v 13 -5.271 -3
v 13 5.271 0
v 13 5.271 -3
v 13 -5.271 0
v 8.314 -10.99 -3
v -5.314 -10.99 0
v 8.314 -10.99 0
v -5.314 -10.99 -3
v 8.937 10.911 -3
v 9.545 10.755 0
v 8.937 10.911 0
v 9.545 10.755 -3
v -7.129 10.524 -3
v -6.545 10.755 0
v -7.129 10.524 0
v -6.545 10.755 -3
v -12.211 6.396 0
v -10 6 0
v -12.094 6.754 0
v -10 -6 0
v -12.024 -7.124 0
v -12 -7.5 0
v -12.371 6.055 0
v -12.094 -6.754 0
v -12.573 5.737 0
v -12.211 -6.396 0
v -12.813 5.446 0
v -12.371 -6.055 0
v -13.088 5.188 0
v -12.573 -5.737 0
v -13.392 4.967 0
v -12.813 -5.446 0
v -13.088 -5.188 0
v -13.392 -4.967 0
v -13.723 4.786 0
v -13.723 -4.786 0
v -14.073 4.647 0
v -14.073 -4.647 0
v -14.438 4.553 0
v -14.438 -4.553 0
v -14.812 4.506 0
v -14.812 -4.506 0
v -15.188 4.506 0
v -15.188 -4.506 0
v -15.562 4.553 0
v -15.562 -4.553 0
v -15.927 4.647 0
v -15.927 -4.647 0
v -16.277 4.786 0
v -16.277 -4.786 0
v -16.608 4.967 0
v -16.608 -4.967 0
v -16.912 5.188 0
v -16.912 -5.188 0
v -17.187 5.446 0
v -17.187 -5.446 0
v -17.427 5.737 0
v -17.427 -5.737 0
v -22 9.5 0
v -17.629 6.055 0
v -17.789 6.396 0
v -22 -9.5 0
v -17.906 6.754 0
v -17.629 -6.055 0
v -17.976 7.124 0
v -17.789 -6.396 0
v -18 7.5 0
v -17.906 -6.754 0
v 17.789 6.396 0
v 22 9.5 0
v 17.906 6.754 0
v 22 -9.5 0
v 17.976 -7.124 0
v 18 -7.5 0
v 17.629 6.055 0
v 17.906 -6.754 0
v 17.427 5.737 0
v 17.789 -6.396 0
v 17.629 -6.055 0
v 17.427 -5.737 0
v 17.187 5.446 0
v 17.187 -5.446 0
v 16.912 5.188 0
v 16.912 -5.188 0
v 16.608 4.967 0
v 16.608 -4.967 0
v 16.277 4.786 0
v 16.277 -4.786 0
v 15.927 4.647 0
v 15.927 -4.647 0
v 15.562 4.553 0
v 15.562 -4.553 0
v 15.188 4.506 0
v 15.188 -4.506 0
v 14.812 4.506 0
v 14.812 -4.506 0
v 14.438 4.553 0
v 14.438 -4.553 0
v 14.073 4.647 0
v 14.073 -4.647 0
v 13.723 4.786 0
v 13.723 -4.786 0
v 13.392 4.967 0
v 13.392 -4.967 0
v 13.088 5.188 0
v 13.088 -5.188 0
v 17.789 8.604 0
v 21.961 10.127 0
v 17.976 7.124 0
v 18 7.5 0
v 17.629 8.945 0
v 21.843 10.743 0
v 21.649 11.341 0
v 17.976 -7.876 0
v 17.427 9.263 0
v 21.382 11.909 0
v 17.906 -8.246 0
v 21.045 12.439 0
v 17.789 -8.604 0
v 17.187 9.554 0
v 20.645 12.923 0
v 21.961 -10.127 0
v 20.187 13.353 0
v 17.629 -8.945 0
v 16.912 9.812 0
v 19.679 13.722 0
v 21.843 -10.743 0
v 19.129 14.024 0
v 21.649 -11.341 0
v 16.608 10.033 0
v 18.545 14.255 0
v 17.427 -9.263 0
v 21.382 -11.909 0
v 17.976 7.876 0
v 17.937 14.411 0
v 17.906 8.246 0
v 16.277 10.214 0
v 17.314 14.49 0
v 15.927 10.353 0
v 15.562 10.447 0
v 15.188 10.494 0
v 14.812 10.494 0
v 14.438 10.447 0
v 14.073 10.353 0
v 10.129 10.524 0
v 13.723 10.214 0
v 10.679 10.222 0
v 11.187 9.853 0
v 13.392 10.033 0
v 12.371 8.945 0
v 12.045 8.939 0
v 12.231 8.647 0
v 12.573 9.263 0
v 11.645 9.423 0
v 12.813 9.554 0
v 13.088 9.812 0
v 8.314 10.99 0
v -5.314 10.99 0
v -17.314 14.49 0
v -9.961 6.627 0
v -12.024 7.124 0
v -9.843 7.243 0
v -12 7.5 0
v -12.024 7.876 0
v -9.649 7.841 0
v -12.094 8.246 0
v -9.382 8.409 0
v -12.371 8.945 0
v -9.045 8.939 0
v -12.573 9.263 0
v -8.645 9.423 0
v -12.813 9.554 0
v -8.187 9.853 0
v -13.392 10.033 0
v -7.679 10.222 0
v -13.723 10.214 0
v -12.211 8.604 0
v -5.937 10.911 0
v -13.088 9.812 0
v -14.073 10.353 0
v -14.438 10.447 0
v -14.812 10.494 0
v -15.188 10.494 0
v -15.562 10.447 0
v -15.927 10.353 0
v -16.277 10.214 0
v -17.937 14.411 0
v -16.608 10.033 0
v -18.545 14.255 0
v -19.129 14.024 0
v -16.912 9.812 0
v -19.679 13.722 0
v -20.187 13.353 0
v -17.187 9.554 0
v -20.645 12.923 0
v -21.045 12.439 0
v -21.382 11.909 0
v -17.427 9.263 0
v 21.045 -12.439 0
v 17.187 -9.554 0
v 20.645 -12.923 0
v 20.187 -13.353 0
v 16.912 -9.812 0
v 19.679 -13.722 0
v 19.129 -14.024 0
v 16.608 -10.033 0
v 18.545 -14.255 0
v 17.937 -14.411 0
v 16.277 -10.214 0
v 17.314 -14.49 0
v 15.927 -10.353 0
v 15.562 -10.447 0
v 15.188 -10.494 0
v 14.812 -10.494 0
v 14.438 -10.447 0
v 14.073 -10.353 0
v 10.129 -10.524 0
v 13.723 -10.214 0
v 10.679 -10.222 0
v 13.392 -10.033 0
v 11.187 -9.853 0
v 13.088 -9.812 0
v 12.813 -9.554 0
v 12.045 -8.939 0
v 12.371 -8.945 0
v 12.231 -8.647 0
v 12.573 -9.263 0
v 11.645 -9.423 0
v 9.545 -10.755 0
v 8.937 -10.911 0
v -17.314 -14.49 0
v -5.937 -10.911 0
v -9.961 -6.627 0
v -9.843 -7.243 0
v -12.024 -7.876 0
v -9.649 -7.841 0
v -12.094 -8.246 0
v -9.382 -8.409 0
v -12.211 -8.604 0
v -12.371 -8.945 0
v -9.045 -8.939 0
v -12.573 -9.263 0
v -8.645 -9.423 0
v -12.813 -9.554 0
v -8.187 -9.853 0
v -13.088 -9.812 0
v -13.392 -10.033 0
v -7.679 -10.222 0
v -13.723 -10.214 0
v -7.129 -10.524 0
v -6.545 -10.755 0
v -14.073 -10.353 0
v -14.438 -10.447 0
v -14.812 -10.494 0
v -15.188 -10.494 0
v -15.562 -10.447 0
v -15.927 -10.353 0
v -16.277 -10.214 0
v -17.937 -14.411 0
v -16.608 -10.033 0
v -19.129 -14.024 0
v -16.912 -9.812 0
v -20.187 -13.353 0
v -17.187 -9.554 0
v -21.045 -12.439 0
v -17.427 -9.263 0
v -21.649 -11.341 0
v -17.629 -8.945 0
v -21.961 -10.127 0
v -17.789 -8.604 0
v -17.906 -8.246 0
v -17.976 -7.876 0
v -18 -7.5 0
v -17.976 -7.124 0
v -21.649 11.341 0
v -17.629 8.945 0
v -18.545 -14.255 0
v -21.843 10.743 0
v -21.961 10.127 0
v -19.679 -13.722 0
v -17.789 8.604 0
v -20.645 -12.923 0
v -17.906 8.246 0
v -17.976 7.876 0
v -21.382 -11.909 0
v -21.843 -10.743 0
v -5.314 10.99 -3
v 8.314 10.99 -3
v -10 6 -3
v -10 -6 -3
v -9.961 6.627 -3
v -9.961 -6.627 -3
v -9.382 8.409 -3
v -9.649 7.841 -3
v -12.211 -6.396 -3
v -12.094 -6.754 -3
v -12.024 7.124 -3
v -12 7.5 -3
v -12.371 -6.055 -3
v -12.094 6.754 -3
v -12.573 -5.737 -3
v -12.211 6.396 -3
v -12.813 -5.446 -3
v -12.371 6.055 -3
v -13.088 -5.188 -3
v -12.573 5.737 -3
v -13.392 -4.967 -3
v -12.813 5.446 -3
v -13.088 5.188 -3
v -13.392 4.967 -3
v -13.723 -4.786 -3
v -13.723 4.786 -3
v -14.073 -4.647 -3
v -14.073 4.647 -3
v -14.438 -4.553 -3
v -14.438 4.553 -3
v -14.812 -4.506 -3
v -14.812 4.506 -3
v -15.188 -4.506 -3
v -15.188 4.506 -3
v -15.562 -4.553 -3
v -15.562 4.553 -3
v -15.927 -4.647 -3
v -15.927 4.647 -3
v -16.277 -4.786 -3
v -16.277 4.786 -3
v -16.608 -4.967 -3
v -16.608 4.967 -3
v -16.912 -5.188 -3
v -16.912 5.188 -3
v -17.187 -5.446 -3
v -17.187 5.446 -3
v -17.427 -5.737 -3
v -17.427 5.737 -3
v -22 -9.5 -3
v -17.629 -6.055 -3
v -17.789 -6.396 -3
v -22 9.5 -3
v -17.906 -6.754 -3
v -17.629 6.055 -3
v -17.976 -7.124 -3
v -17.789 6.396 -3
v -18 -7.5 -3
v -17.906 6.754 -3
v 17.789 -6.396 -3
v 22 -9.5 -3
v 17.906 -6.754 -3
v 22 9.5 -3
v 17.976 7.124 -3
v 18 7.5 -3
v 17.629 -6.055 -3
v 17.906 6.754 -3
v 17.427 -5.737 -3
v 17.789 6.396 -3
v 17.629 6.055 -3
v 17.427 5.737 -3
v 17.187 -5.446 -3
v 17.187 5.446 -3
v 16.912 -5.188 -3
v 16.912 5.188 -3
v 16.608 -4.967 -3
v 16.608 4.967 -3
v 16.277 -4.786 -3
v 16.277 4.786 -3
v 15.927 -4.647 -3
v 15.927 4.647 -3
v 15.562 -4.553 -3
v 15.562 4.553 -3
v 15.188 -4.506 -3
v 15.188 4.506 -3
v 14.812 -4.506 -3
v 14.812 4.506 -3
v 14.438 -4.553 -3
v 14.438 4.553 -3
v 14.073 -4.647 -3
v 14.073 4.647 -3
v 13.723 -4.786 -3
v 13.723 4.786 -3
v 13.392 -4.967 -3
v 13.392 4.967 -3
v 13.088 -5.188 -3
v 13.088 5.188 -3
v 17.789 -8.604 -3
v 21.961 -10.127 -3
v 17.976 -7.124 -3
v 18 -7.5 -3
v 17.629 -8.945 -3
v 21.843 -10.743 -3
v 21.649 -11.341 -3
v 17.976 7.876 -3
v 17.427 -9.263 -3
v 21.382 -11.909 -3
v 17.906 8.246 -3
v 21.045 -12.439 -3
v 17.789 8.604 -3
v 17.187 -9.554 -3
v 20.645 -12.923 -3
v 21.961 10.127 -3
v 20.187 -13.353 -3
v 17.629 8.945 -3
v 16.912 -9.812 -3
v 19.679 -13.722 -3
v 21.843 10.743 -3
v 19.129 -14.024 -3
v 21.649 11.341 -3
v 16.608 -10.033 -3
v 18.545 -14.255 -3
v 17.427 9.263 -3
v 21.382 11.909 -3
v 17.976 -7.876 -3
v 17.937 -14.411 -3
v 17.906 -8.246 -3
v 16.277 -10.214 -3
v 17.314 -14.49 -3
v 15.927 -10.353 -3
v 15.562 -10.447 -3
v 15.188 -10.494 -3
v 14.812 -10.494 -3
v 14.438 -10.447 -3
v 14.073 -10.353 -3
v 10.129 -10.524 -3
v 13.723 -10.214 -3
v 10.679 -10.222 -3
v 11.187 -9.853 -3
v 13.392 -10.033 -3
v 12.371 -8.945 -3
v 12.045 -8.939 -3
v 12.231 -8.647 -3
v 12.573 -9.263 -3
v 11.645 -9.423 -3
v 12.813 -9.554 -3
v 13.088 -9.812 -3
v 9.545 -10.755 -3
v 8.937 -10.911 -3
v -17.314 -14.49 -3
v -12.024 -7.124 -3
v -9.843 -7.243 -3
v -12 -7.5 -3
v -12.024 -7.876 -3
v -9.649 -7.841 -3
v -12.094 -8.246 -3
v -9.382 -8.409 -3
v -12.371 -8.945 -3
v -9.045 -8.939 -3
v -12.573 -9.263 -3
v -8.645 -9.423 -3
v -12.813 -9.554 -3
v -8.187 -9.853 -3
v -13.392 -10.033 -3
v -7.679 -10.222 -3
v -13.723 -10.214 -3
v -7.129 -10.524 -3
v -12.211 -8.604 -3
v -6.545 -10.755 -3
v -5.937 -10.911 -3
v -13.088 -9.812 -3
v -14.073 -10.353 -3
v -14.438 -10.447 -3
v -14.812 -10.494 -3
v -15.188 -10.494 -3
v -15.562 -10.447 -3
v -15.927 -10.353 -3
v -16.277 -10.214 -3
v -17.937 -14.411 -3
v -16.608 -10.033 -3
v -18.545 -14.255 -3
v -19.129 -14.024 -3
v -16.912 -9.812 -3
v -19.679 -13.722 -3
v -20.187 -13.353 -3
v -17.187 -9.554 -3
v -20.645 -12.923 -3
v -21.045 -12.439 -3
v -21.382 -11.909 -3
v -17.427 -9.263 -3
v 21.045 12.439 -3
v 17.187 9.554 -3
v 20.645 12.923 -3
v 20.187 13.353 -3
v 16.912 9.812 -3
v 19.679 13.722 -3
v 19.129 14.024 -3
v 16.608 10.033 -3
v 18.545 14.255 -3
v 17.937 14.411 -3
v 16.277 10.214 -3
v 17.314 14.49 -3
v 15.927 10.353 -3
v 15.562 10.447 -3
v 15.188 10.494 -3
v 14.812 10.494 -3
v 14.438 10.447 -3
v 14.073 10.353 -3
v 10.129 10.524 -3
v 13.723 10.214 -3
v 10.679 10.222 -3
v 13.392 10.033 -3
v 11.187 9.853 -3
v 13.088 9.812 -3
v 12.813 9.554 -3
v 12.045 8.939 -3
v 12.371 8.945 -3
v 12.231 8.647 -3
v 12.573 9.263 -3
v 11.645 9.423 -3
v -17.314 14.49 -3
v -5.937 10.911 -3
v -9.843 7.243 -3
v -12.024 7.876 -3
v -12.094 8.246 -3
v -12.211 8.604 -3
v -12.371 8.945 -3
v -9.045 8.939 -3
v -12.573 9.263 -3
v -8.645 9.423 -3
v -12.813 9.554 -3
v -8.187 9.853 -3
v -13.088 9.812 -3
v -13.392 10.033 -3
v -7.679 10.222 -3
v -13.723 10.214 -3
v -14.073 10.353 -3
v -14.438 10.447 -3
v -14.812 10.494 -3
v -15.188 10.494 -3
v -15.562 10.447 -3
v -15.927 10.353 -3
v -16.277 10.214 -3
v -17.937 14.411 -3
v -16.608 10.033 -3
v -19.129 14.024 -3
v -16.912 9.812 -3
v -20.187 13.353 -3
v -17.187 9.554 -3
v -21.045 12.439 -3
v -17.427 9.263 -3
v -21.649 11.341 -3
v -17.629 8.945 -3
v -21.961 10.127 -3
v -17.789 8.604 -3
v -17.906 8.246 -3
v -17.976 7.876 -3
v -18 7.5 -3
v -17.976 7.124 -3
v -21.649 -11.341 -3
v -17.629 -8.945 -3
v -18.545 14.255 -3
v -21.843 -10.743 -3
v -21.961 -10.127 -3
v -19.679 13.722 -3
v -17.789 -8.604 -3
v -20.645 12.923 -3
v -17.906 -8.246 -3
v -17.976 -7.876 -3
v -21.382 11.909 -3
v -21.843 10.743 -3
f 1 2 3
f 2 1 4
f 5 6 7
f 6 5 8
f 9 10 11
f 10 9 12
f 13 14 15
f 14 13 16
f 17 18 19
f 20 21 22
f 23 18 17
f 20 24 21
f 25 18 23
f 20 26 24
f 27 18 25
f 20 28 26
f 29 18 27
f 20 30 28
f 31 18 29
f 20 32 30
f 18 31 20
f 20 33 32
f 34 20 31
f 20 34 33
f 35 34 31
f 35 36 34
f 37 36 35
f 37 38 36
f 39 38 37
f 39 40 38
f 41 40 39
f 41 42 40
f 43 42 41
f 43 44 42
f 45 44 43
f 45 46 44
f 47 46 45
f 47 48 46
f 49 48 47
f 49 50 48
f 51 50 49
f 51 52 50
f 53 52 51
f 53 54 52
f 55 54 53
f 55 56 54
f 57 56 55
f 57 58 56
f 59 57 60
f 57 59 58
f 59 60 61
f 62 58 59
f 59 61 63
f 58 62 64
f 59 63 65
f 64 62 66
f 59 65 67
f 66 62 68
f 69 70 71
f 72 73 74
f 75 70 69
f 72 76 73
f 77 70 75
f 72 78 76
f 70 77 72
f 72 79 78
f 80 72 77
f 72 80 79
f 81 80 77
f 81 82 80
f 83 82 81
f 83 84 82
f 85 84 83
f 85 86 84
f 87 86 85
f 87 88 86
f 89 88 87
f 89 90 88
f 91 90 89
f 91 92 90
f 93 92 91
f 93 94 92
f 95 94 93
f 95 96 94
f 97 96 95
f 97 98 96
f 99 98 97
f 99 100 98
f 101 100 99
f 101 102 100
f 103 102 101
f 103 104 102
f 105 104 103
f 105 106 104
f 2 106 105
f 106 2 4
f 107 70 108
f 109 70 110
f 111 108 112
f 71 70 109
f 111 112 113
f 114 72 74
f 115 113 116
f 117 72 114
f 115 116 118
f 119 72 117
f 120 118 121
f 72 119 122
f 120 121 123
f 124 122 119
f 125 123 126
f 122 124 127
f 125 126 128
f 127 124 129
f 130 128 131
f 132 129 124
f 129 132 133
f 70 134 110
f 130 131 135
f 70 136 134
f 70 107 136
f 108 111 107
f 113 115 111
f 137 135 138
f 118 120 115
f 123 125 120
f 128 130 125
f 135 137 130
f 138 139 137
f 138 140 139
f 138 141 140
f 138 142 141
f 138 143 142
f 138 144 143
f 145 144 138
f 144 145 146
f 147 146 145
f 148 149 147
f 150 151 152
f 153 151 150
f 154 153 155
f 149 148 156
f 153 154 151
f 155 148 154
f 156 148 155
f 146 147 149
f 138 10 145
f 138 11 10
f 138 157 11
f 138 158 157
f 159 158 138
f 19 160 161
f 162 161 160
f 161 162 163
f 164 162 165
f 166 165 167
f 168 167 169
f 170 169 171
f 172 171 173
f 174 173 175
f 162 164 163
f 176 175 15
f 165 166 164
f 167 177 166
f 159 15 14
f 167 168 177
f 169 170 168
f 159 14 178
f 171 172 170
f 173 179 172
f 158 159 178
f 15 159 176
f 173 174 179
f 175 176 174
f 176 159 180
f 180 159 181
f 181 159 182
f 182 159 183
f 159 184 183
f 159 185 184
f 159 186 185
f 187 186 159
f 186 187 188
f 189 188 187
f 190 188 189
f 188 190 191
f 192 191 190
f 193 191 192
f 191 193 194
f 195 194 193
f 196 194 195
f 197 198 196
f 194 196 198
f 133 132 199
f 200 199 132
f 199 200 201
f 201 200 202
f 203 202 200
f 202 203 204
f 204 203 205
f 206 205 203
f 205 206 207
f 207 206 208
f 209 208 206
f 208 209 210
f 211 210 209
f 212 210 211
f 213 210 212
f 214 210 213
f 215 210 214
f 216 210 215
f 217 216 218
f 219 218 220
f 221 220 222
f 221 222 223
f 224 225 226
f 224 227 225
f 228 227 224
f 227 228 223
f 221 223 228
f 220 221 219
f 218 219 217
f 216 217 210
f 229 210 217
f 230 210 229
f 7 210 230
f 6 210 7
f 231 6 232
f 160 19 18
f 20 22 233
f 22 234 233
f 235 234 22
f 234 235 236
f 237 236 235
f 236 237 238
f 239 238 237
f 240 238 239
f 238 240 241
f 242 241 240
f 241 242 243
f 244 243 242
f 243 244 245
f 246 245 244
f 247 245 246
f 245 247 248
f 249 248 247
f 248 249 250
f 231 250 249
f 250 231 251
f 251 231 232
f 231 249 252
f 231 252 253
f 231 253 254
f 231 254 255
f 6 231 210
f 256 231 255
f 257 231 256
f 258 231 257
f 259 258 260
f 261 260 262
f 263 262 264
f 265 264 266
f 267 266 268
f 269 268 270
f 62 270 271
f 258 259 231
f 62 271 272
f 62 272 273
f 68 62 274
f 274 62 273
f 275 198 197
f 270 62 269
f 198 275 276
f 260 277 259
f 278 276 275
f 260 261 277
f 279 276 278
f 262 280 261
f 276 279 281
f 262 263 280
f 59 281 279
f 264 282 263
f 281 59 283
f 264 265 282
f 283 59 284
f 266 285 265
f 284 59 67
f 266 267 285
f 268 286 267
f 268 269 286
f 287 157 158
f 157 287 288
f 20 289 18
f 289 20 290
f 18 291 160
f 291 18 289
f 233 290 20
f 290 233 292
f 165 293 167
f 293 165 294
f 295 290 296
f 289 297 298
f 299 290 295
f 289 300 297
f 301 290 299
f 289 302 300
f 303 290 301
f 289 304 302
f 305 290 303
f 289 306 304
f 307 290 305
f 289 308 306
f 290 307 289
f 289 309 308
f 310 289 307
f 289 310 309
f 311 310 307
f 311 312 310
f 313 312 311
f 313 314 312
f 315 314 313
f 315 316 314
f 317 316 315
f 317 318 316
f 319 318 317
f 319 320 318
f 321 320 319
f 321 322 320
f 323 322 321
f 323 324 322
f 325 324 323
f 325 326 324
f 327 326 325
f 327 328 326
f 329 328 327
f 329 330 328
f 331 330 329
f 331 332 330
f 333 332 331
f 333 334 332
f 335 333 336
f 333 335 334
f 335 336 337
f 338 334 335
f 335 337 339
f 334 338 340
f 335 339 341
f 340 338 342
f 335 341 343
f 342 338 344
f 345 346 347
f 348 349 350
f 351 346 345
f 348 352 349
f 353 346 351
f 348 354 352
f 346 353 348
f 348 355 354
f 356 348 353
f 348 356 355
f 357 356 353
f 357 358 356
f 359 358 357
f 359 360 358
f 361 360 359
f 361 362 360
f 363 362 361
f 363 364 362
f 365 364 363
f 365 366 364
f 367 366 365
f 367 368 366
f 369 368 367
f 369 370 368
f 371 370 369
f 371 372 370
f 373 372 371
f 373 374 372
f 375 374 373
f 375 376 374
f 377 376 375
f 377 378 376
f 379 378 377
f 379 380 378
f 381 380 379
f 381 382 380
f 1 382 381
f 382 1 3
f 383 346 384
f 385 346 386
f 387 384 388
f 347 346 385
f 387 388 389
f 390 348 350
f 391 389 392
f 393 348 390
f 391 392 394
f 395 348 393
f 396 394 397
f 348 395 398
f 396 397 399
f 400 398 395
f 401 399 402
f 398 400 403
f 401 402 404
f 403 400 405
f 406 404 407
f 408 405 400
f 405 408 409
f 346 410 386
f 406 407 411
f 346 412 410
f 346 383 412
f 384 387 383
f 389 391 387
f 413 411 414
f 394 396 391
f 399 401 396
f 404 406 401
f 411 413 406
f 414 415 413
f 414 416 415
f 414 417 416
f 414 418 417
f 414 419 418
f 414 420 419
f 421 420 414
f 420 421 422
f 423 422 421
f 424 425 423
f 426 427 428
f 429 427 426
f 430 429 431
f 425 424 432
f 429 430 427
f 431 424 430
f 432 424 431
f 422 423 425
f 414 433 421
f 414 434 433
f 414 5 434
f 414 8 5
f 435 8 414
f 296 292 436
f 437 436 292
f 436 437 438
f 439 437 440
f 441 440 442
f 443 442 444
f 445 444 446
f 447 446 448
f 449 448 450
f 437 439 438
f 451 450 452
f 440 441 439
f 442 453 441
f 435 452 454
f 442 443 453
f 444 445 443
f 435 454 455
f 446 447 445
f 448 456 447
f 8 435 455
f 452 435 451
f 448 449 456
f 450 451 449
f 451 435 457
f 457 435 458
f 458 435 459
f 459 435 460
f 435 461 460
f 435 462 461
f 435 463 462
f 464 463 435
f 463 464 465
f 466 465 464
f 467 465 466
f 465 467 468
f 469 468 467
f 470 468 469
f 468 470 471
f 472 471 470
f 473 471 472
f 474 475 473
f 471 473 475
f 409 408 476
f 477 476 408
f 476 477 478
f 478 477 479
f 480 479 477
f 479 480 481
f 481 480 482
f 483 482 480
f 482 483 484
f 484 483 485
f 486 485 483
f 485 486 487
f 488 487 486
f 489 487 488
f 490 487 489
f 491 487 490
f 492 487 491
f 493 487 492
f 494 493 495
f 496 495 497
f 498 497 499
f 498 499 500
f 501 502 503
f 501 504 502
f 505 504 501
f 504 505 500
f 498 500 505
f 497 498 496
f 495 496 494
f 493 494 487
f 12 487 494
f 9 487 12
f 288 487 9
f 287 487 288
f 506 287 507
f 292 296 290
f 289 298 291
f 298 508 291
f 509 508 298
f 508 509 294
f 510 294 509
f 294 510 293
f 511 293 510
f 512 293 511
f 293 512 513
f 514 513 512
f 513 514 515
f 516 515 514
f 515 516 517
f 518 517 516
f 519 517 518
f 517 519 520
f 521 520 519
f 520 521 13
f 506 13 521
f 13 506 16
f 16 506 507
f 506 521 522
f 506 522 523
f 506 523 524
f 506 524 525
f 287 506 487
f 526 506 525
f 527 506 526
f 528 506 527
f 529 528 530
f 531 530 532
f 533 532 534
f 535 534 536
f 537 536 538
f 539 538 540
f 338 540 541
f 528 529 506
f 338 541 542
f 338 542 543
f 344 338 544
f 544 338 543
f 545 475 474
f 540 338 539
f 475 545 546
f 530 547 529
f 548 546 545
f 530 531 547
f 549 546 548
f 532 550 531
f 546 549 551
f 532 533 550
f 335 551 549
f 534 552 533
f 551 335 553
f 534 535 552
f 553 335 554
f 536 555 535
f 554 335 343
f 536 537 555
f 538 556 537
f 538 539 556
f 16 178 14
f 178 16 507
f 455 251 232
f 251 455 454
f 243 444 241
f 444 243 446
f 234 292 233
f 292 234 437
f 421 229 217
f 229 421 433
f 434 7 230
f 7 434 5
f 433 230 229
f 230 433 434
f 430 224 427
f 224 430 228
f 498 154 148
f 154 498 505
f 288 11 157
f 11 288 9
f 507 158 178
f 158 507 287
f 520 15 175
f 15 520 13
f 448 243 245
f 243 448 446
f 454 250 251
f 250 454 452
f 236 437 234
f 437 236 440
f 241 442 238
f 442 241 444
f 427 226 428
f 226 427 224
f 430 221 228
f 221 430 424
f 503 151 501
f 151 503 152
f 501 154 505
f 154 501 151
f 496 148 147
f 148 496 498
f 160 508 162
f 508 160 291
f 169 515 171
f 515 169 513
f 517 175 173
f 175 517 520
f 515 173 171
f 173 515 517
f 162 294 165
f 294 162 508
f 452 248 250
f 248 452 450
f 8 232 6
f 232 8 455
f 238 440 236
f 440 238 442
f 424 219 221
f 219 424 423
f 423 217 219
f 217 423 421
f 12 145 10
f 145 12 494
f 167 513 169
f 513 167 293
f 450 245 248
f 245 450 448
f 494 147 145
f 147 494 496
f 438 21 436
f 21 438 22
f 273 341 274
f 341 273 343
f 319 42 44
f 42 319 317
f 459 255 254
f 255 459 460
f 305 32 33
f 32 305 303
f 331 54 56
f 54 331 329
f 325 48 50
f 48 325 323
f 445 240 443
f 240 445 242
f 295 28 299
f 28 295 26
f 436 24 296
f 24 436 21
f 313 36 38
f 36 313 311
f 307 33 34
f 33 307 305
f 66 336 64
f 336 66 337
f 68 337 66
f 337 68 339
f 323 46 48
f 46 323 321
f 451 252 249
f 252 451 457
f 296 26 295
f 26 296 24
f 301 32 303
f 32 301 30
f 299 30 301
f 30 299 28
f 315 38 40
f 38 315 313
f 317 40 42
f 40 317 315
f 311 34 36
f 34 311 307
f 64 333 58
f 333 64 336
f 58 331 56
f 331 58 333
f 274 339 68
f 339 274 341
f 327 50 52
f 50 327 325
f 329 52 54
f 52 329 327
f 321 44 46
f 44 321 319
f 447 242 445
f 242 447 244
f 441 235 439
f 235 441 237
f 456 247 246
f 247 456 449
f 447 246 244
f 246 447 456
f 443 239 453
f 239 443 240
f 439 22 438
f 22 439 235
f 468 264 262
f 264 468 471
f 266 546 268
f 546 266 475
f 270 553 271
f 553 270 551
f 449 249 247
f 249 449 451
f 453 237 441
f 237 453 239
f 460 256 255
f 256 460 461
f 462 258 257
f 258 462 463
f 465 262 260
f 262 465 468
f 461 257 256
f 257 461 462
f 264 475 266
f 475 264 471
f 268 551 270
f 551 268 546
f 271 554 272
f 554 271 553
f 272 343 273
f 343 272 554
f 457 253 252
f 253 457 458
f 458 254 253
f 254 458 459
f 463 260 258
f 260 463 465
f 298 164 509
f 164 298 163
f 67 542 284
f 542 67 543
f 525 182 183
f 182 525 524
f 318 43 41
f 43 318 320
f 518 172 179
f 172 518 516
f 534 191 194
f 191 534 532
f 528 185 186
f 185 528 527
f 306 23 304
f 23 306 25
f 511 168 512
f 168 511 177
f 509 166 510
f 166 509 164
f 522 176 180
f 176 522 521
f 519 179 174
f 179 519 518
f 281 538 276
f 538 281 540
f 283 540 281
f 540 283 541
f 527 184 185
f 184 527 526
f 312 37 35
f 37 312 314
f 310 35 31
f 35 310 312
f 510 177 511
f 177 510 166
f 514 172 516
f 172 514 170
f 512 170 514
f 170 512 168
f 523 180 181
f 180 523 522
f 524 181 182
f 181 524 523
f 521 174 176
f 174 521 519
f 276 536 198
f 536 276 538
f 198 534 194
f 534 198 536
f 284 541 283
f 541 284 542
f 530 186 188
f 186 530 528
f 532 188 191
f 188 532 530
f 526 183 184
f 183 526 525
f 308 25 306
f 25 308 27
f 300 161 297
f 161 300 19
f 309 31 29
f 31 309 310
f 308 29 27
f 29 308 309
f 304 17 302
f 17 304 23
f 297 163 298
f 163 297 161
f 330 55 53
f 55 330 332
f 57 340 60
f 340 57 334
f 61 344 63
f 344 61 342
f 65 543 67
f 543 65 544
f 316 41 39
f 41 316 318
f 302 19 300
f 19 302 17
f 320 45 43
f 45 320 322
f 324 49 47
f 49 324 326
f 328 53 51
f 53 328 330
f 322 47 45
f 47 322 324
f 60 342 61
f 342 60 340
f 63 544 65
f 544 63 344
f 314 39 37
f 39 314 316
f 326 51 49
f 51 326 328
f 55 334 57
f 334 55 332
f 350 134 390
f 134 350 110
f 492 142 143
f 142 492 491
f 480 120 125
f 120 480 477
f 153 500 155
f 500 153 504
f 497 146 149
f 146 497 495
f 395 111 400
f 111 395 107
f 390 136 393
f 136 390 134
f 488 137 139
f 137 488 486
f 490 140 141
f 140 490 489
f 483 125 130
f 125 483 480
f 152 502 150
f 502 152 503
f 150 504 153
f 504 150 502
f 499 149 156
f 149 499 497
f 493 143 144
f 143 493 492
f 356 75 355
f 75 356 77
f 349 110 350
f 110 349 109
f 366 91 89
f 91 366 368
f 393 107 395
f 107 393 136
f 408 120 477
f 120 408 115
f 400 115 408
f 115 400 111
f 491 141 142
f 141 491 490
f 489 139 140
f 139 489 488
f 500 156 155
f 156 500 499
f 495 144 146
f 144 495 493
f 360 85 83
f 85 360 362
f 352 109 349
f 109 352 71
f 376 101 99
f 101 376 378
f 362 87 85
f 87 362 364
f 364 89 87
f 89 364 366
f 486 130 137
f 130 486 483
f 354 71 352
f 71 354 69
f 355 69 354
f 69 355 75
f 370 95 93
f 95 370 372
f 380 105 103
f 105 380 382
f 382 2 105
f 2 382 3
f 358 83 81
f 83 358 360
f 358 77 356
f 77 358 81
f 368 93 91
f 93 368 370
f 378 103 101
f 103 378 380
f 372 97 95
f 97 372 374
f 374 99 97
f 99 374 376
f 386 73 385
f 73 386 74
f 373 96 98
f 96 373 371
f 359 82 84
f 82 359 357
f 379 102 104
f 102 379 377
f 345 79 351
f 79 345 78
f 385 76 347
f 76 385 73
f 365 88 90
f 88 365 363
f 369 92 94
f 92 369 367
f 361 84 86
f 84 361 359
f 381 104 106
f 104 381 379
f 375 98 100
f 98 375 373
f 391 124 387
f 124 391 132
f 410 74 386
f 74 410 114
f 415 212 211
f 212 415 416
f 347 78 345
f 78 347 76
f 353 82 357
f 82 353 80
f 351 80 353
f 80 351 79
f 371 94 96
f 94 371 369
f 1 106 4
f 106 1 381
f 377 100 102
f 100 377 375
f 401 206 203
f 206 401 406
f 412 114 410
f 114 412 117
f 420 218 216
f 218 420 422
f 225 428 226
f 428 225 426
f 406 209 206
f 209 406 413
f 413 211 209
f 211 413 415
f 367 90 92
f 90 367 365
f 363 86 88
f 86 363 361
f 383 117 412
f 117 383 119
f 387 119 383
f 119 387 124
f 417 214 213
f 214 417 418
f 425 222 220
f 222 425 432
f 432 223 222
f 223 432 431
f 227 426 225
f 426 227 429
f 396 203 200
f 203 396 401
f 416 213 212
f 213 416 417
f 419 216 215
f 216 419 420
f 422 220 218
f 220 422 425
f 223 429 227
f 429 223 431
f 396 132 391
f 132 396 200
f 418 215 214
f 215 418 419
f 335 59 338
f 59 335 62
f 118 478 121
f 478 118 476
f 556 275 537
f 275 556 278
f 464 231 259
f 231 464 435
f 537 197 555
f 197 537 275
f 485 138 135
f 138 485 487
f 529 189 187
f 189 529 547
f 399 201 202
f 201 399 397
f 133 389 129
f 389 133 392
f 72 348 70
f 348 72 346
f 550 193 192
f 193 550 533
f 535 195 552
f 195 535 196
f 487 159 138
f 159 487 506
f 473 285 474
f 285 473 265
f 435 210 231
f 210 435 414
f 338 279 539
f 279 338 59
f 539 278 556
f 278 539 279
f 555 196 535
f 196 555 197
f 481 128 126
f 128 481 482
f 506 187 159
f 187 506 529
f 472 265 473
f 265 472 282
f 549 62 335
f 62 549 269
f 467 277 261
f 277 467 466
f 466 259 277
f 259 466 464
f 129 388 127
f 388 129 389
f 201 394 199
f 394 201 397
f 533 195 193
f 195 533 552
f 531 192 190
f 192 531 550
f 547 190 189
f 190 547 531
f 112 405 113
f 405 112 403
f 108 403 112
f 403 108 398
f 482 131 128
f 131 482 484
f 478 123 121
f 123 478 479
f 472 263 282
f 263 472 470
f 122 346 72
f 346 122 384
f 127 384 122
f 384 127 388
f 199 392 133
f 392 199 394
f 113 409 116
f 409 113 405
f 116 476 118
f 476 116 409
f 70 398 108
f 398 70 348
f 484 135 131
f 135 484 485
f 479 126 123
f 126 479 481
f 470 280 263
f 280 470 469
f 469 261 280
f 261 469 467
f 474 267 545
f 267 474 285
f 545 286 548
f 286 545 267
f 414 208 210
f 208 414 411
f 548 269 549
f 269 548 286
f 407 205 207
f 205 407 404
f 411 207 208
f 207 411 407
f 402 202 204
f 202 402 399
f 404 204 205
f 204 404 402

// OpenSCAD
$fn = 50;


difference() {
	union() {
		translate(v = [0, 0, -3]) {
			hull() {
				translate(v = [-17.0000000000, 9.5000000000, 0]) {
					cylinder(h = 3, r = 5);
				}
				translate(v = [17.0000000000, 9.5000000000, 0]) {
					cylinder(h = 3, r = 5);
				}
				translate(v = [-17.0000000000, -9.5000000000, 0]) {
					cylinder(h = 3, r = 5);
				}
				translate(v = [17.0000000000, -9.5000000000, 0]) {
					cylinder(h = 3, r = 5);
				}
			}
		}
	}
	union() {
		translate(v = [0, 0, -3]) {
			rotate(a = [0, 0, 180]) {
				difference() {
					union() {
						translate(v = [-1.5000000000, 0, 0]) {
							#hull() {
								translate(v = [-6.5000000000, 6.0000000000, 0]) {
									cylinder(h = 3, r = 5);
								}
								translate(v = [6.5000000000, 6.0000000000, 0]) {
									cylinder(h = 3, r = 5);
								}
								translate(v = [-6.5000000000, -6.0000000000, 0]) {
									cylinder(h = 3, r = 5);
								}
								translate(v = [6.5000000000, -6.0000000000, 0]) {
									cylinder(h = 3, r = 5);
								}
							}
						}
					}
					union();
				}
			}
		}
		translate(v = [-15.0000000000, -7.5000000000, -50.0000000000]) {
			cylinder(h = 100, r = 3.0000000000);
		}
		translate(v = [-15.0000000000, 7.5000000000, -50.0000000000]) {
			cylinder(h = 100, r = 3.0000000000);
		}
		translate(v = [-15.0000000000, 7.5000000000, -50.0000000000]) {
			cylinder(h = 100, r = 3.0000000000);
		}
		translate(v = [0.0000000000, 7.5000000000, -50.0000000000]) {
			cylinder(h = 100, r = 3.0000000000);
		}
		translate(v = [15.0000000000, 7.5000000000, -50.0000000000]) {
			cylinder(h = 100, r = 3.0000000000);
		}
		translate(v = [-15.0000000000, -7.5000000000, -50.0000000000]) {
			cylinder(h = 100, r = 3.0000000000);
		}
		translate(v = [0.0000000000, -7.5000000000, -50.0000000000]) {
			cylinder(h = 100, r = 3.0000000000);
		}
		translate(v = [15.0000000000, -7.5000000000, -50.0000000000]) {
			cylinder(h = 100, r = 3.0000000000);
		}
	}
}
